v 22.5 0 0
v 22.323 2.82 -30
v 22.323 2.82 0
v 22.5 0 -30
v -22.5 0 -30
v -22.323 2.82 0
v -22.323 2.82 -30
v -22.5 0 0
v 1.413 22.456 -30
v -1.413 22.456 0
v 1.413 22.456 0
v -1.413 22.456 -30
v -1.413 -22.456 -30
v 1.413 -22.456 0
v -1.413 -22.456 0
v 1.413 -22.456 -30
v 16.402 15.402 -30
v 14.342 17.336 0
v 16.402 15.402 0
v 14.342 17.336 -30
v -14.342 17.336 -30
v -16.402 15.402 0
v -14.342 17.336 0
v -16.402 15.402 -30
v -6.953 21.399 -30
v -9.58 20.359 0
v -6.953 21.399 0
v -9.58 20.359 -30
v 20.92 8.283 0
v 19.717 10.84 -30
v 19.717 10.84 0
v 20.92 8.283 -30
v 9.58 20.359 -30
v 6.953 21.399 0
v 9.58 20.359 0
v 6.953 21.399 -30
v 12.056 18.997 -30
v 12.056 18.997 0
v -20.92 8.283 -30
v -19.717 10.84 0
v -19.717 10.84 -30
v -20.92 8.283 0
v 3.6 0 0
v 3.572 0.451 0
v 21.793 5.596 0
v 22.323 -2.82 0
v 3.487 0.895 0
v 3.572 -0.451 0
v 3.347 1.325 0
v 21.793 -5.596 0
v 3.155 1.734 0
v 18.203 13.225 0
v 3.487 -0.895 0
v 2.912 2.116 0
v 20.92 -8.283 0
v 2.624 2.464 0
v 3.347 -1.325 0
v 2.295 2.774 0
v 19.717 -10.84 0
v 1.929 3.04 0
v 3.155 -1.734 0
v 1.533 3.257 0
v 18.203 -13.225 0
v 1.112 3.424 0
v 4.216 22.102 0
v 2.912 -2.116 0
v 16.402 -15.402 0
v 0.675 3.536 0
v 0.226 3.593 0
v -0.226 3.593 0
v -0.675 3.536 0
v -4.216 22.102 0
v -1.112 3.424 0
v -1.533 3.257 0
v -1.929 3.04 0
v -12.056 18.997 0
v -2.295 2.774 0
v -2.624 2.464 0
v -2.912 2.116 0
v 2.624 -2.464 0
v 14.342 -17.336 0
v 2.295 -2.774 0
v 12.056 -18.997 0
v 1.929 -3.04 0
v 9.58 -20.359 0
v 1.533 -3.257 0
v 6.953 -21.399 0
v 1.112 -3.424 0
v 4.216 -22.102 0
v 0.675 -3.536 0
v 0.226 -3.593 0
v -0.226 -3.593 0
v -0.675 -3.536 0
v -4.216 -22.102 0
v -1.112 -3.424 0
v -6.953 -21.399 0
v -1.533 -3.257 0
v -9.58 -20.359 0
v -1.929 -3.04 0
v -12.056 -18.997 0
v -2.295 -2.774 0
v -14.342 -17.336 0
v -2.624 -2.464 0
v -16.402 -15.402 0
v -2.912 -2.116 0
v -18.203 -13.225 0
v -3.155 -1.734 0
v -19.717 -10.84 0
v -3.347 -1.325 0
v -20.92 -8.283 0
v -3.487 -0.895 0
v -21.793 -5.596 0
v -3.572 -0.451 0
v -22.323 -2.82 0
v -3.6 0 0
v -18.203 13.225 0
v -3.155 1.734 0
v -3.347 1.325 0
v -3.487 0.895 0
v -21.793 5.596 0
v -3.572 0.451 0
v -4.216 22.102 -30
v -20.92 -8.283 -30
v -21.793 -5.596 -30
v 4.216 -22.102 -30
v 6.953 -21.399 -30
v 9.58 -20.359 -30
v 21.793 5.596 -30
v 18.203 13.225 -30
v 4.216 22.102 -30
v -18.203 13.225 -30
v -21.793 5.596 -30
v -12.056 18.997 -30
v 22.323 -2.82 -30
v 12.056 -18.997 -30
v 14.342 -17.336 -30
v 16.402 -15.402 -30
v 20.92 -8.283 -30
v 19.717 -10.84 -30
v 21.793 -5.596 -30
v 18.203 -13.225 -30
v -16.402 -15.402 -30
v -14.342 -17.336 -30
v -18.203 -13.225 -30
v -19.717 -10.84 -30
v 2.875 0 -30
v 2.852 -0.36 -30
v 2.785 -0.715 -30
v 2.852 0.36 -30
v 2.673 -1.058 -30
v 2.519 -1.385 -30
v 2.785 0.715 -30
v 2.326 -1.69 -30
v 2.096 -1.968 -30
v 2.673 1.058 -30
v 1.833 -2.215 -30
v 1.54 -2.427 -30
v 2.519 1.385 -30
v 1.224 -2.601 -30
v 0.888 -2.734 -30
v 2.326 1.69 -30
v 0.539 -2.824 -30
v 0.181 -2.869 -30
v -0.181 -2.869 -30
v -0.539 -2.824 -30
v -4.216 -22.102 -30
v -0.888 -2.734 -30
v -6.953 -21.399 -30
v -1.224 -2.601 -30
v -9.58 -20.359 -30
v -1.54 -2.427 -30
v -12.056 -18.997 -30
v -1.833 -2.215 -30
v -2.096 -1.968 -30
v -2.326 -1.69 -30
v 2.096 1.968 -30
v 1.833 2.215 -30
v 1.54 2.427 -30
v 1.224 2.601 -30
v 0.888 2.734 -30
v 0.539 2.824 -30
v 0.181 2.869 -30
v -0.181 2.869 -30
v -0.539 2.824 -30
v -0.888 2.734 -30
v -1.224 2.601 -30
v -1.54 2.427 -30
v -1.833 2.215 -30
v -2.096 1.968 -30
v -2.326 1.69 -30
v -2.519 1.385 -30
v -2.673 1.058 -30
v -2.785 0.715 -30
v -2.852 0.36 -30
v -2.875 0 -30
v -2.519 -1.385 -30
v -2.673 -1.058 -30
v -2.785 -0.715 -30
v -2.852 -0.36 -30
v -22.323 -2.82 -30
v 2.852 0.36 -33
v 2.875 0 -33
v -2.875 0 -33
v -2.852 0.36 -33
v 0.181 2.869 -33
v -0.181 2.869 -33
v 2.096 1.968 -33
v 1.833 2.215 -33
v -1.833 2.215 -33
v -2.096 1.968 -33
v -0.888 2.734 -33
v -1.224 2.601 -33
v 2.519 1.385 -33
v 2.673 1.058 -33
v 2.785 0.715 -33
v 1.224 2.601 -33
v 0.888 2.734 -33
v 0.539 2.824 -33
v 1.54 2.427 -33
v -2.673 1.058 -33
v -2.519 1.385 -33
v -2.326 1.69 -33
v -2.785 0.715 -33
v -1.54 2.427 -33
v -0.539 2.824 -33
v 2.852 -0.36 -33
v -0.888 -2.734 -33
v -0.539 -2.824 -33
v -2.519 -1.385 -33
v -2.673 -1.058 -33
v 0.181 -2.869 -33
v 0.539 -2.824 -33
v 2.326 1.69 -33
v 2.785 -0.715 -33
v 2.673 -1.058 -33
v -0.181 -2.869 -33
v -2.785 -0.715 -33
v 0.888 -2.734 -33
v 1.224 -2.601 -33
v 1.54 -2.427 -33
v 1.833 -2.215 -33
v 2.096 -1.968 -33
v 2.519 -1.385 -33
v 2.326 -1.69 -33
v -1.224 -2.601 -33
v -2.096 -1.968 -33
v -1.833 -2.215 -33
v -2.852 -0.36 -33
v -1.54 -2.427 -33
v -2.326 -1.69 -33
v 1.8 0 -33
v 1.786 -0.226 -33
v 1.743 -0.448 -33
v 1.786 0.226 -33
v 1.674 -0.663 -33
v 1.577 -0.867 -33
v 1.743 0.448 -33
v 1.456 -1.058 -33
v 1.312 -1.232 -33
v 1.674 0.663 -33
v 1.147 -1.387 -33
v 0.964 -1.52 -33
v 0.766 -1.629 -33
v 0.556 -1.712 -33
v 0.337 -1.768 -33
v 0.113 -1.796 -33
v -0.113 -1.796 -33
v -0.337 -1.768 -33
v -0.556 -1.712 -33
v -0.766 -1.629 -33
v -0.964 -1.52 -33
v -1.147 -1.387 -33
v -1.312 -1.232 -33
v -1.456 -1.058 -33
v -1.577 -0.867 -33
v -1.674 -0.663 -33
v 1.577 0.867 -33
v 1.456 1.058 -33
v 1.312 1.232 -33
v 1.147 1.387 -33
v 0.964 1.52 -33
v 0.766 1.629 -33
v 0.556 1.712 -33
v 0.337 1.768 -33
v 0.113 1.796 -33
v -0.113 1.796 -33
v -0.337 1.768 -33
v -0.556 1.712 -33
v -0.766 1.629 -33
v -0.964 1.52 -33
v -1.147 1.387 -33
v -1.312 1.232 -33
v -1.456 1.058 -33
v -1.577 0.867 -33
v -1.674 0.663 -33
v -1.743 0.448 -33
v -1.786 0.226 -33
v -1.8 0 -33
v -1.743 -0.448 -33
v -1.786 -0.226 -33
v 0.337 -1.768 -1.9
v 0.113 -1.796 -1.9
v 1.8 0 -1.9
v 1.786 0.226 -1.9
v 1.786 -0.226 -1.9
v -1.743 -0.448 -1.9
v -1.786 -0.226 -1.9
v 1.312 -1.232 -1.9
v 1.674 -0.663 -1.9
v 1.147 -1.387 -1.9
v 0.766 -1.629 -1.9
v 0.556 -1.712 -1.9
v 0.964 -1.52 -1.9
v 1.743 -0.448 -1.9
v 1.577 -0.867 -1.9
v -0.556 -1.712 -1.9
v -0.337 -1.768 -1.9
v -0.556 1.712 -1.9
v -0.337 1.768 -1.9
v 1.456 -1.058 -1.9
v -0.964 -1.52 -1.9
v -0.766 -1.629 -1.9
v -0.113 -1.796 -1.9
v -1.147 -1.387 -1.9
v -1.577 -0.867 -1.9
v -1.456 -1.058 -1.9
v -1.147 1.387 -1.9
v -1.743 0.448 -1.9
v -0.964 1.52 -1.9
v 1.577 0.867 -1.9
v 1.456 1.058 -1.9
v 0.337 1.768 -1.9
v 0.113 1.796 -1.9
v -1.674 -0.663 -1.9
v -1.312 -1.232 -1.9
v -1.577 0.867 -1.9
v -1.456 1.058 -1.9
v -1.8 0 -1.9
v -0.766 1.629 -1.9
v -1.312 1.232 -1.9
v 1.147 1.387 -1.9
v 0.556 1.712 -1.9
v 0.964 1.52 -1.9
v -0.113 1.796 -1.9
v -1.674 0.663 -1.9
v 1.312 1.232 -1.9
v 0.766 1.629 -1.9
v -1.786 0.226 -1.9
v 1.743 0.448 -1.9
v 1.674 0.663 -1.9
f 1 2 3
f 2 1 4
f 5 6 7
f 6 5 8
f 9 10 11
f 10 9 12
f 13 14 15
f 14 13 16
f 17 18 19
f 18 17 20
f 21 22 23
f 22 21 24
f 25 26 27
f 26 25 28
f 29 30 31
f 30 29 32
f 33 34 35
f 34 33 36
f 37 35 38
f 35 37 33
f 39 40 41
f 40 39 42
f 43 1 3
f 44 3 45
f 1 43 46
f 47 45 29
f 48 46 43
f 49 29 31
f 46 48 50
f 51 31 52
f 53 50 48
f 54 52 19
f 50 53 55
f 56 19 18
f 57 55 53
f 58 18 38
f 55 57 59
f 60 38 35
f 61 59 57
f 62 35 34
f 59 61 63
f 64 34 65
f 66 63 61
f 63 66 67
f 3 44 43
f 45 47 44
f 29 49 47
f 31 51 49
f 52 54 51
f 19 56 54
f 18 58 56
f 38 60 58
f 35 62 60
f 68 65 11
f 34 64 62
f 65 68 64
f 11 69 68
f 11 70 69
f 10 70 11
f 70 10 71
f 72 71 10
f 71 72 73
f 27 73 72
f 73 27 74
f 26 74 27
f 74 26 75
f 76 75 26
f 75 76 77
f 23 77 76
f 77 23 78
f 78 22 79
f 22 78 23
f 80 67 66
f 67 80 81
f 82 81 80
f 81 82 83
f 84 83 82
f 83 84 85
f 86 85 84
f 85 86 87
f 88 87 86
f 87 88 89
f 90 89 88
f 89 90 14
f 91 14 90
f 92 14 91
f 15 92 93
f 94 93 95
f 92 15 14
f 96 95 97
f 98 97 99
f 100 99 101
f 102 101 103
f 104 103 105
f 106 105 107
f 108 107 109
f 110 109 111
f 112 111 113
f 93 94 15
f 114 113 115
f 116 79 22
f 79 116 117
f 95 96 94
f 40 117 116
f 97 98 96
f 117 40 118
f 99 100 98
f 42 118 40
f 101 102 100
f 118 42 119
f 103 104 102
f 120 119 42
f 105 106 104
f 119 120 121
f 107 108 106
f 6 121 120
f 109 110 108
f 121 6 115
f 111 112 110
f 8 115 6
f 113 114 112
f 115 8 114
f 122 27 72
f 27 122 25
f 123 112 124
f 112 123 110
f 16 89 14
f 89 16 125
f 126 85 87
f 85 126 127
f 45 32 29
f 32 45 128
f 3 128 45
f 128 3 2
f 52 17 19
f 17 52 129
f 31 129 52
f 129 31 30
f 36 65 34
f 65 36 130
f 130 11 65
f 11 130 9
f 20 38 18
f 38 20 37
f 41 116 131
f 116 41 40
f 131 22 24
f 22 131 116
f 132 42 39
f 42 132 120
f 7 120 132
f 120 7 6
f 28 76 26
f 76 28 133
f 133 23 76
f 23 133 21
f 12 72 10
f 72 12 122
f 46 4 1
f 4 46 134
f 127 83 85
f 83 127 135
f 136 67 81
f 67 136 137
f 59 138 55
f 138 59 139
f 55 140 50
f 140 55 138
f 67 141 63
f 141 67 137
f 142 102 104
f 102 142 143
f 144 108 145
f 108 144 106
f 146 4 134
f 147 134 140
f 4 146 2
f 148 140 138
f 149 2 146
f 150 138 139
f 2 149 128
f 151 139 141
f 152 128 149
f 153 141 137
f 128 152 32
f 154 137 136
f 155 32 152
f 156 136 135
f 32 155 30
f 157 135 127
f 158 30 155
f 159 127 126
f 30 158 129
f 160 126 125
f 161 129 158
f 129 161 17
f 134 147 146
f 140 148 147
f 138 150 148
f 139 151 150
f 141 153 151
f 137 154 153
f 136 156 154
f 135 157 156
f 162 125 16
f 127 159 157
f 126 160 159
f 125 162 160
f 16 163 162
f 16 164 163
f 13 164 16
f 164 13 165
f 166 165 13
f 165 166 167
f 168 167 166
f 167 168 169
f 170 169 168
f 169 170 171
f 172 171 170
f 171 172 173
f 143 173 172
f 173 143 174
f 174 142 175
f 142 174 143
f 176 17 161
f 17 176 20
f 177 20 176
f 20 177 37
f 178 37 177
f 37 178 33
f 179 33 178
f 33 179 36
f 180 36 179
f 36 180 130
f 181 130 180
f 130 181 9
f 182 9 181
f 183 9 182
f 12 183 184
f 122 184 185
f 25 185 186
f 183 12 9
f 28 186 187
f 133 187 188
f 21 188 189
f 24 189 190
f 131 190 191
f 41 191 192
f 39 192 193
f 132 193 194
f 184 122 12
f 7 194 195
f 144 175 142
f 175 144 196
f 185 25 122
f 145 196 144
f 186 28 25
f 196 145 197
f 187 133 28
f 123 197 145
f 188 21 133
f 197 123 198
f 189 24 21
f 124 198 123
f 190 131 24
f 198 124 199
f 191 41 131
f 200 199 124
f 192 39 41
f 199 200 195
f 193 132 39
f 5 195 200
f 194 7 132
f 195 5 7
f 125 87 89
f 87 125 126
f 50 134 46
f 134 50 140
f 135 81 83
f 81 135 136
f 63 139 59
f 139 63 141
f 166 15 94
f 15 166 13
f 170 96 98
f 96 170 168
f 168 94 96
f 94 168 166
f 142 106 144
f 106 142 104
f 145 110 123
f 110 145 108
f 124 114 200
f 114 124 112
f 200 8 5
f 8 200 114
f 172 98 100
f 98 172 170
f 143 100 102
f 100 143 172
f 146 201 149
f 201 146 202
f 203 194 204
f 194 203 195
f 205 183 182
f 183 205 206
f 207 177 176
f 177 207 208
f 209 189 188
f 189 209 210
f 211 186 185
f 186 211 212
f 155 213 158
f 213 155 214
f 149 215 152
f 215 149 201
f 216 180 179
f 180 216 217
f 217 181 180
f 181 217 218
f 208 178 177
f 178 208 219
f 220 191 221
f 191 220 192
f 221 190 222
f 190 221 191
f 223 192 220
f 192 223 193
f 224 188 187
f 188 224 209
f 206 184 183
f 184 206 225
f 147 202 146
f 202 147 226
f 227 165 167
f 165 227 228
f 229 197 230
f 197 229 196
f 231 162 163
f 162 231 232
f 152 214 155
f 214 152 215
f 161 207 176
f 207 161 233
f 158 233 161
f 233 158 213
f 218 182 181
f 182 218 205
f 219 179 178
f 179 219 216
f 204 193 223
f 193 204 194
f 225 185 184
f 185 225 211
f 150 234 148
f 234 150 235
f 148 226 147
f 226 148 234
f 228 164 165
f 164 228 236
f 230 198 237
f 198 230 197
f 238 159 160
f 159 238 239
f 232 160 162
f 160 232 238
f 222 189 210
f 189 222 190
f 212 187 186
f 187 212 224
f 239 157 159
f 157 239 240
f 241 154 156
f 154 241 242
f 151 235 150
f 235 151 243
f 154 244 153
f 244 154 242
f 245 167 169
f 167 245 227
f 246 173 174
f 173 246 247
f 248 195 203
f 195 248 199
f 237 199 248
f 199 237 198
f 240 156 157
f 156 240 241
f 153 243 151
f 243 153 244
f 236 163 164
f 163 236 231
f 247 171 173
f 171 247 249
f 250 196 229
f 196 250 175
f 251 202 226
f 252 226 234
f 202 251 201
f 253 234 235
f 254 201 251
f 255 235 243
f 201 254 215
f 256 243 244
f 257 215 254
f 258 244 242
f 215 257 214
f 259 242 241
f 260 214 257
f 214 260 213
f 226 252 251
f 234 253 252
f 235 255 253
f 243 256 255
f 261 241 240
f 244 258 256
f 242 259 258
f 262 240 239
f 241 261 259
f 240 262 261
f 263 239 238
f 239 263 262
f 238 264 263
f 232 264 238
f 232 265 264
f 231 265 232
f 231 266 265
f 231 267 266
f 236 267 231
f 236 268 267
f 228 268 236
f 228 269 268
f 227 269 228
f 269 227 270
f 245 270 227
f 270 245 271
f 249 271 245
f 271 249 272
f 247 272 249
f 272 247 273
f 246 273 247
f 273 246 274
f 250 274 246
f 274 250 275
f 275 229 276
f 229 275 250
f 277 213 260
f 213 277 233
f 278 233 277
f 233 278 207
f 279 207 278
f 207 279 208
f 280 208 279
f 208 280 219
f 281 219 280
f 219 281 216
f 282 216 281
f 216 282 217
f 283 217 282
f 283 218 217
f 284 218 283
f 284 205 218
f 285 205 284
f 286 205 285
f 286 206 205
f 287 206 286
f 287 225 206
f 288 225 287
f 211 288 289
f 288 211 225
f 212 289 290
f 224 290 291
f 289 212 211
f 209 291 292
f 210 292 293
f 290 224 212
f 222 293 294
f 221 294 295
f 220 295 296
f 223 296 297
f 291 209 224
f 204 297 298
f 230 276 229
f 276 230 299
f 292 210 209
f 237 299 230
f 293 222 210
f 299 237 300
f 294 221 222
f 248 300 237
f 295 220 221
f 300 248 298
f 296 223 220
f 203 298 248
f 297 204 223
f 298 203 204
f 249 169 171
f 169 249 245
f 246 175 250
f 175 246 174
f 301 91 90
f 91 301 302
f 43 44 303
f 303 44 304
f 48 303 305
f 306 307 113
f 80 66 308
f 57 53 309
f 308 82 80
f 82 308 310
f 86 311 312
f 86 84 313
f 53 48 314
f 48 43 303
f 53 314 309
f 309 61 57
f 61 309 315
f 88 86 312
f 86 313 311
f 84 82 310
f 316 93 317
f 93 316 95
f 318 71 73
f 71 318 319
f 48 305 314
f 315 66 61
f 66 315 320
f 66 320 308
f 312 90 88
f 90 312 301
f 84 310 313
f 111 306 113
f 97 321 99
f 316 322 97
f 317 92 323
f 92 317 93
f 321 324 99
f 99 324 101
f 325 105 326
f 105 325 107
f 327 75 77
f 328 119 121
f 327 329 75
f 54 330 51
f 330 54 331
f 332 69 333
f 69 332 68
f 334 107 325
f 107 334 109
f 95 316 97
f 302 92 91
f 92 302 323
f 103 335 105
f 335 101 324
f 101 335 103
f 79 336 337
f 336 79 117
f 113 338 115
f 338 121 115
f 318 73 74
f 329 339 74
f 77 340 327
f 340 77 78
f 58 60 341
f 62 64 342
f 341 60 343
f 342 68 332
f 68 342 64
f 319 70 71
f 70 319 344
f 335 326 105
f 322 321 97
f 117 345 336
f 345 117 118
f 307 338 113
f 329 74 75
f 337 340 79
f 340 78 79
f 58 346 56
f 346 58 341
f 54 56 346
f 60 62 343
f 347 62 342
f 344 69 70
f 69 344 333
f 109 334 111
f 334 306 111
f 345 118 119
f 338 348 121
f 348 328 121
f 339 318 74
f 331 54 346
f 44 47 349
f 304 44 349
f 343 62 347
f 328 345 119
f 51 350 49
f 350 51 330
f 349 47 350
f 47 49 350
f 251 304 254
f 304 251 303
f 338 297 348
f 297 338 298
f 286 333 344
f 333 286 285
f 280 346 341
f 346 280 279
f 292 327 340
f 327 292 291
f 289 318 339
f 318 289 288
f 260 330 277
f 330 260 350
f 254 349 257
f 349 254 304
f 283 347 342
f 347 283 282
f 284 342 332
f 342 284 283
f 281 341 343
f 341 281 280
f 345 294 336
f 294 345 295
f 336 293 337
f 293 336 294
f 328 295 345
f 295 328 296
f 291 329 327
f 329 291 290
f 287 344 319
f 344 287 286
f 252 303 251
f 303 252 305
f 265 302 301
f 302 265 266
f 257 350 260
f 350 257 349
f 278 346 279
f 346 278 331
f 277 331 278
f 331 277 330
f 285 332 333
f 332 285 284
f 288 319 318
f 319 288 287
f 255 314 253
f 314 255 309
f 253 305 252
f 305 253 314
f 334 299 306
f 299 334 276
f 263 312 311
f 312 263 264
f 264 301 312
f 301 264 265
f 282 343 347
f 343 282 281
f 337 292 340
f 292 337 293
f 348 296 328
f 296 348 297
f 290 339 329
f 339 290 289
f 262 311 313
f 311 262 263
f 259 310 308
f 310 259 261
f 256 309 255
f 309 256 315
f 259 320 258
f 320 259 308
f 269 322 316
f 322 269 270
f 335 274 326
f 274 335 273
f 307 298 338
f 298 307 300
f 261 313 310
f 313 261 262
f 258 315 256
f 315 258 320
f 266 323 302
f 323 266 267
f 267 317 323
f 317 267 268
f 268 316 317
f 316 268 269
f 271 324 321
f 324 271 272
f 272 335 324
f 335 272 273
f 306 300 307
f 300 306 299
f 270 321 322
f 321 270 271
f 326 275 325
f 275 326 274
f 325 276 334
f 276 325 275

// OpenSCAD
$fn = 50;

difference() {
	union() {
		translate(v = [0, 0, -30.0]) {
			cylinder(h = 30, r = 22.5);
		}
		#translate(v = [0, 0, -33.0]) {
			cylinder(h = 33, r = 2.875);
		}
	}
	union() {
		translate(v = [0, 0, 0]) {
			rotate(a = [0, 0, 0]) {
				difference() {
					union() {
						translate(v = [0, 0, -33.0]) {
							cylinder(h = 33, r = 1.5);
						}
						translate(v = [0, 0, -1.9]) {
							cylinder(h = 1.9, r1 = 1.8, r2 = 3.6);
						}
						translate(v = [0, 0, -33.0]) {
							cylinder(h = 33, r = 1.8);
						}
						translate(v = [0, 0, -33.0]) {
							cylinder(h = 33, r = 1.5);
						}
					}
					union();
				}
			}
		}
	}
}
